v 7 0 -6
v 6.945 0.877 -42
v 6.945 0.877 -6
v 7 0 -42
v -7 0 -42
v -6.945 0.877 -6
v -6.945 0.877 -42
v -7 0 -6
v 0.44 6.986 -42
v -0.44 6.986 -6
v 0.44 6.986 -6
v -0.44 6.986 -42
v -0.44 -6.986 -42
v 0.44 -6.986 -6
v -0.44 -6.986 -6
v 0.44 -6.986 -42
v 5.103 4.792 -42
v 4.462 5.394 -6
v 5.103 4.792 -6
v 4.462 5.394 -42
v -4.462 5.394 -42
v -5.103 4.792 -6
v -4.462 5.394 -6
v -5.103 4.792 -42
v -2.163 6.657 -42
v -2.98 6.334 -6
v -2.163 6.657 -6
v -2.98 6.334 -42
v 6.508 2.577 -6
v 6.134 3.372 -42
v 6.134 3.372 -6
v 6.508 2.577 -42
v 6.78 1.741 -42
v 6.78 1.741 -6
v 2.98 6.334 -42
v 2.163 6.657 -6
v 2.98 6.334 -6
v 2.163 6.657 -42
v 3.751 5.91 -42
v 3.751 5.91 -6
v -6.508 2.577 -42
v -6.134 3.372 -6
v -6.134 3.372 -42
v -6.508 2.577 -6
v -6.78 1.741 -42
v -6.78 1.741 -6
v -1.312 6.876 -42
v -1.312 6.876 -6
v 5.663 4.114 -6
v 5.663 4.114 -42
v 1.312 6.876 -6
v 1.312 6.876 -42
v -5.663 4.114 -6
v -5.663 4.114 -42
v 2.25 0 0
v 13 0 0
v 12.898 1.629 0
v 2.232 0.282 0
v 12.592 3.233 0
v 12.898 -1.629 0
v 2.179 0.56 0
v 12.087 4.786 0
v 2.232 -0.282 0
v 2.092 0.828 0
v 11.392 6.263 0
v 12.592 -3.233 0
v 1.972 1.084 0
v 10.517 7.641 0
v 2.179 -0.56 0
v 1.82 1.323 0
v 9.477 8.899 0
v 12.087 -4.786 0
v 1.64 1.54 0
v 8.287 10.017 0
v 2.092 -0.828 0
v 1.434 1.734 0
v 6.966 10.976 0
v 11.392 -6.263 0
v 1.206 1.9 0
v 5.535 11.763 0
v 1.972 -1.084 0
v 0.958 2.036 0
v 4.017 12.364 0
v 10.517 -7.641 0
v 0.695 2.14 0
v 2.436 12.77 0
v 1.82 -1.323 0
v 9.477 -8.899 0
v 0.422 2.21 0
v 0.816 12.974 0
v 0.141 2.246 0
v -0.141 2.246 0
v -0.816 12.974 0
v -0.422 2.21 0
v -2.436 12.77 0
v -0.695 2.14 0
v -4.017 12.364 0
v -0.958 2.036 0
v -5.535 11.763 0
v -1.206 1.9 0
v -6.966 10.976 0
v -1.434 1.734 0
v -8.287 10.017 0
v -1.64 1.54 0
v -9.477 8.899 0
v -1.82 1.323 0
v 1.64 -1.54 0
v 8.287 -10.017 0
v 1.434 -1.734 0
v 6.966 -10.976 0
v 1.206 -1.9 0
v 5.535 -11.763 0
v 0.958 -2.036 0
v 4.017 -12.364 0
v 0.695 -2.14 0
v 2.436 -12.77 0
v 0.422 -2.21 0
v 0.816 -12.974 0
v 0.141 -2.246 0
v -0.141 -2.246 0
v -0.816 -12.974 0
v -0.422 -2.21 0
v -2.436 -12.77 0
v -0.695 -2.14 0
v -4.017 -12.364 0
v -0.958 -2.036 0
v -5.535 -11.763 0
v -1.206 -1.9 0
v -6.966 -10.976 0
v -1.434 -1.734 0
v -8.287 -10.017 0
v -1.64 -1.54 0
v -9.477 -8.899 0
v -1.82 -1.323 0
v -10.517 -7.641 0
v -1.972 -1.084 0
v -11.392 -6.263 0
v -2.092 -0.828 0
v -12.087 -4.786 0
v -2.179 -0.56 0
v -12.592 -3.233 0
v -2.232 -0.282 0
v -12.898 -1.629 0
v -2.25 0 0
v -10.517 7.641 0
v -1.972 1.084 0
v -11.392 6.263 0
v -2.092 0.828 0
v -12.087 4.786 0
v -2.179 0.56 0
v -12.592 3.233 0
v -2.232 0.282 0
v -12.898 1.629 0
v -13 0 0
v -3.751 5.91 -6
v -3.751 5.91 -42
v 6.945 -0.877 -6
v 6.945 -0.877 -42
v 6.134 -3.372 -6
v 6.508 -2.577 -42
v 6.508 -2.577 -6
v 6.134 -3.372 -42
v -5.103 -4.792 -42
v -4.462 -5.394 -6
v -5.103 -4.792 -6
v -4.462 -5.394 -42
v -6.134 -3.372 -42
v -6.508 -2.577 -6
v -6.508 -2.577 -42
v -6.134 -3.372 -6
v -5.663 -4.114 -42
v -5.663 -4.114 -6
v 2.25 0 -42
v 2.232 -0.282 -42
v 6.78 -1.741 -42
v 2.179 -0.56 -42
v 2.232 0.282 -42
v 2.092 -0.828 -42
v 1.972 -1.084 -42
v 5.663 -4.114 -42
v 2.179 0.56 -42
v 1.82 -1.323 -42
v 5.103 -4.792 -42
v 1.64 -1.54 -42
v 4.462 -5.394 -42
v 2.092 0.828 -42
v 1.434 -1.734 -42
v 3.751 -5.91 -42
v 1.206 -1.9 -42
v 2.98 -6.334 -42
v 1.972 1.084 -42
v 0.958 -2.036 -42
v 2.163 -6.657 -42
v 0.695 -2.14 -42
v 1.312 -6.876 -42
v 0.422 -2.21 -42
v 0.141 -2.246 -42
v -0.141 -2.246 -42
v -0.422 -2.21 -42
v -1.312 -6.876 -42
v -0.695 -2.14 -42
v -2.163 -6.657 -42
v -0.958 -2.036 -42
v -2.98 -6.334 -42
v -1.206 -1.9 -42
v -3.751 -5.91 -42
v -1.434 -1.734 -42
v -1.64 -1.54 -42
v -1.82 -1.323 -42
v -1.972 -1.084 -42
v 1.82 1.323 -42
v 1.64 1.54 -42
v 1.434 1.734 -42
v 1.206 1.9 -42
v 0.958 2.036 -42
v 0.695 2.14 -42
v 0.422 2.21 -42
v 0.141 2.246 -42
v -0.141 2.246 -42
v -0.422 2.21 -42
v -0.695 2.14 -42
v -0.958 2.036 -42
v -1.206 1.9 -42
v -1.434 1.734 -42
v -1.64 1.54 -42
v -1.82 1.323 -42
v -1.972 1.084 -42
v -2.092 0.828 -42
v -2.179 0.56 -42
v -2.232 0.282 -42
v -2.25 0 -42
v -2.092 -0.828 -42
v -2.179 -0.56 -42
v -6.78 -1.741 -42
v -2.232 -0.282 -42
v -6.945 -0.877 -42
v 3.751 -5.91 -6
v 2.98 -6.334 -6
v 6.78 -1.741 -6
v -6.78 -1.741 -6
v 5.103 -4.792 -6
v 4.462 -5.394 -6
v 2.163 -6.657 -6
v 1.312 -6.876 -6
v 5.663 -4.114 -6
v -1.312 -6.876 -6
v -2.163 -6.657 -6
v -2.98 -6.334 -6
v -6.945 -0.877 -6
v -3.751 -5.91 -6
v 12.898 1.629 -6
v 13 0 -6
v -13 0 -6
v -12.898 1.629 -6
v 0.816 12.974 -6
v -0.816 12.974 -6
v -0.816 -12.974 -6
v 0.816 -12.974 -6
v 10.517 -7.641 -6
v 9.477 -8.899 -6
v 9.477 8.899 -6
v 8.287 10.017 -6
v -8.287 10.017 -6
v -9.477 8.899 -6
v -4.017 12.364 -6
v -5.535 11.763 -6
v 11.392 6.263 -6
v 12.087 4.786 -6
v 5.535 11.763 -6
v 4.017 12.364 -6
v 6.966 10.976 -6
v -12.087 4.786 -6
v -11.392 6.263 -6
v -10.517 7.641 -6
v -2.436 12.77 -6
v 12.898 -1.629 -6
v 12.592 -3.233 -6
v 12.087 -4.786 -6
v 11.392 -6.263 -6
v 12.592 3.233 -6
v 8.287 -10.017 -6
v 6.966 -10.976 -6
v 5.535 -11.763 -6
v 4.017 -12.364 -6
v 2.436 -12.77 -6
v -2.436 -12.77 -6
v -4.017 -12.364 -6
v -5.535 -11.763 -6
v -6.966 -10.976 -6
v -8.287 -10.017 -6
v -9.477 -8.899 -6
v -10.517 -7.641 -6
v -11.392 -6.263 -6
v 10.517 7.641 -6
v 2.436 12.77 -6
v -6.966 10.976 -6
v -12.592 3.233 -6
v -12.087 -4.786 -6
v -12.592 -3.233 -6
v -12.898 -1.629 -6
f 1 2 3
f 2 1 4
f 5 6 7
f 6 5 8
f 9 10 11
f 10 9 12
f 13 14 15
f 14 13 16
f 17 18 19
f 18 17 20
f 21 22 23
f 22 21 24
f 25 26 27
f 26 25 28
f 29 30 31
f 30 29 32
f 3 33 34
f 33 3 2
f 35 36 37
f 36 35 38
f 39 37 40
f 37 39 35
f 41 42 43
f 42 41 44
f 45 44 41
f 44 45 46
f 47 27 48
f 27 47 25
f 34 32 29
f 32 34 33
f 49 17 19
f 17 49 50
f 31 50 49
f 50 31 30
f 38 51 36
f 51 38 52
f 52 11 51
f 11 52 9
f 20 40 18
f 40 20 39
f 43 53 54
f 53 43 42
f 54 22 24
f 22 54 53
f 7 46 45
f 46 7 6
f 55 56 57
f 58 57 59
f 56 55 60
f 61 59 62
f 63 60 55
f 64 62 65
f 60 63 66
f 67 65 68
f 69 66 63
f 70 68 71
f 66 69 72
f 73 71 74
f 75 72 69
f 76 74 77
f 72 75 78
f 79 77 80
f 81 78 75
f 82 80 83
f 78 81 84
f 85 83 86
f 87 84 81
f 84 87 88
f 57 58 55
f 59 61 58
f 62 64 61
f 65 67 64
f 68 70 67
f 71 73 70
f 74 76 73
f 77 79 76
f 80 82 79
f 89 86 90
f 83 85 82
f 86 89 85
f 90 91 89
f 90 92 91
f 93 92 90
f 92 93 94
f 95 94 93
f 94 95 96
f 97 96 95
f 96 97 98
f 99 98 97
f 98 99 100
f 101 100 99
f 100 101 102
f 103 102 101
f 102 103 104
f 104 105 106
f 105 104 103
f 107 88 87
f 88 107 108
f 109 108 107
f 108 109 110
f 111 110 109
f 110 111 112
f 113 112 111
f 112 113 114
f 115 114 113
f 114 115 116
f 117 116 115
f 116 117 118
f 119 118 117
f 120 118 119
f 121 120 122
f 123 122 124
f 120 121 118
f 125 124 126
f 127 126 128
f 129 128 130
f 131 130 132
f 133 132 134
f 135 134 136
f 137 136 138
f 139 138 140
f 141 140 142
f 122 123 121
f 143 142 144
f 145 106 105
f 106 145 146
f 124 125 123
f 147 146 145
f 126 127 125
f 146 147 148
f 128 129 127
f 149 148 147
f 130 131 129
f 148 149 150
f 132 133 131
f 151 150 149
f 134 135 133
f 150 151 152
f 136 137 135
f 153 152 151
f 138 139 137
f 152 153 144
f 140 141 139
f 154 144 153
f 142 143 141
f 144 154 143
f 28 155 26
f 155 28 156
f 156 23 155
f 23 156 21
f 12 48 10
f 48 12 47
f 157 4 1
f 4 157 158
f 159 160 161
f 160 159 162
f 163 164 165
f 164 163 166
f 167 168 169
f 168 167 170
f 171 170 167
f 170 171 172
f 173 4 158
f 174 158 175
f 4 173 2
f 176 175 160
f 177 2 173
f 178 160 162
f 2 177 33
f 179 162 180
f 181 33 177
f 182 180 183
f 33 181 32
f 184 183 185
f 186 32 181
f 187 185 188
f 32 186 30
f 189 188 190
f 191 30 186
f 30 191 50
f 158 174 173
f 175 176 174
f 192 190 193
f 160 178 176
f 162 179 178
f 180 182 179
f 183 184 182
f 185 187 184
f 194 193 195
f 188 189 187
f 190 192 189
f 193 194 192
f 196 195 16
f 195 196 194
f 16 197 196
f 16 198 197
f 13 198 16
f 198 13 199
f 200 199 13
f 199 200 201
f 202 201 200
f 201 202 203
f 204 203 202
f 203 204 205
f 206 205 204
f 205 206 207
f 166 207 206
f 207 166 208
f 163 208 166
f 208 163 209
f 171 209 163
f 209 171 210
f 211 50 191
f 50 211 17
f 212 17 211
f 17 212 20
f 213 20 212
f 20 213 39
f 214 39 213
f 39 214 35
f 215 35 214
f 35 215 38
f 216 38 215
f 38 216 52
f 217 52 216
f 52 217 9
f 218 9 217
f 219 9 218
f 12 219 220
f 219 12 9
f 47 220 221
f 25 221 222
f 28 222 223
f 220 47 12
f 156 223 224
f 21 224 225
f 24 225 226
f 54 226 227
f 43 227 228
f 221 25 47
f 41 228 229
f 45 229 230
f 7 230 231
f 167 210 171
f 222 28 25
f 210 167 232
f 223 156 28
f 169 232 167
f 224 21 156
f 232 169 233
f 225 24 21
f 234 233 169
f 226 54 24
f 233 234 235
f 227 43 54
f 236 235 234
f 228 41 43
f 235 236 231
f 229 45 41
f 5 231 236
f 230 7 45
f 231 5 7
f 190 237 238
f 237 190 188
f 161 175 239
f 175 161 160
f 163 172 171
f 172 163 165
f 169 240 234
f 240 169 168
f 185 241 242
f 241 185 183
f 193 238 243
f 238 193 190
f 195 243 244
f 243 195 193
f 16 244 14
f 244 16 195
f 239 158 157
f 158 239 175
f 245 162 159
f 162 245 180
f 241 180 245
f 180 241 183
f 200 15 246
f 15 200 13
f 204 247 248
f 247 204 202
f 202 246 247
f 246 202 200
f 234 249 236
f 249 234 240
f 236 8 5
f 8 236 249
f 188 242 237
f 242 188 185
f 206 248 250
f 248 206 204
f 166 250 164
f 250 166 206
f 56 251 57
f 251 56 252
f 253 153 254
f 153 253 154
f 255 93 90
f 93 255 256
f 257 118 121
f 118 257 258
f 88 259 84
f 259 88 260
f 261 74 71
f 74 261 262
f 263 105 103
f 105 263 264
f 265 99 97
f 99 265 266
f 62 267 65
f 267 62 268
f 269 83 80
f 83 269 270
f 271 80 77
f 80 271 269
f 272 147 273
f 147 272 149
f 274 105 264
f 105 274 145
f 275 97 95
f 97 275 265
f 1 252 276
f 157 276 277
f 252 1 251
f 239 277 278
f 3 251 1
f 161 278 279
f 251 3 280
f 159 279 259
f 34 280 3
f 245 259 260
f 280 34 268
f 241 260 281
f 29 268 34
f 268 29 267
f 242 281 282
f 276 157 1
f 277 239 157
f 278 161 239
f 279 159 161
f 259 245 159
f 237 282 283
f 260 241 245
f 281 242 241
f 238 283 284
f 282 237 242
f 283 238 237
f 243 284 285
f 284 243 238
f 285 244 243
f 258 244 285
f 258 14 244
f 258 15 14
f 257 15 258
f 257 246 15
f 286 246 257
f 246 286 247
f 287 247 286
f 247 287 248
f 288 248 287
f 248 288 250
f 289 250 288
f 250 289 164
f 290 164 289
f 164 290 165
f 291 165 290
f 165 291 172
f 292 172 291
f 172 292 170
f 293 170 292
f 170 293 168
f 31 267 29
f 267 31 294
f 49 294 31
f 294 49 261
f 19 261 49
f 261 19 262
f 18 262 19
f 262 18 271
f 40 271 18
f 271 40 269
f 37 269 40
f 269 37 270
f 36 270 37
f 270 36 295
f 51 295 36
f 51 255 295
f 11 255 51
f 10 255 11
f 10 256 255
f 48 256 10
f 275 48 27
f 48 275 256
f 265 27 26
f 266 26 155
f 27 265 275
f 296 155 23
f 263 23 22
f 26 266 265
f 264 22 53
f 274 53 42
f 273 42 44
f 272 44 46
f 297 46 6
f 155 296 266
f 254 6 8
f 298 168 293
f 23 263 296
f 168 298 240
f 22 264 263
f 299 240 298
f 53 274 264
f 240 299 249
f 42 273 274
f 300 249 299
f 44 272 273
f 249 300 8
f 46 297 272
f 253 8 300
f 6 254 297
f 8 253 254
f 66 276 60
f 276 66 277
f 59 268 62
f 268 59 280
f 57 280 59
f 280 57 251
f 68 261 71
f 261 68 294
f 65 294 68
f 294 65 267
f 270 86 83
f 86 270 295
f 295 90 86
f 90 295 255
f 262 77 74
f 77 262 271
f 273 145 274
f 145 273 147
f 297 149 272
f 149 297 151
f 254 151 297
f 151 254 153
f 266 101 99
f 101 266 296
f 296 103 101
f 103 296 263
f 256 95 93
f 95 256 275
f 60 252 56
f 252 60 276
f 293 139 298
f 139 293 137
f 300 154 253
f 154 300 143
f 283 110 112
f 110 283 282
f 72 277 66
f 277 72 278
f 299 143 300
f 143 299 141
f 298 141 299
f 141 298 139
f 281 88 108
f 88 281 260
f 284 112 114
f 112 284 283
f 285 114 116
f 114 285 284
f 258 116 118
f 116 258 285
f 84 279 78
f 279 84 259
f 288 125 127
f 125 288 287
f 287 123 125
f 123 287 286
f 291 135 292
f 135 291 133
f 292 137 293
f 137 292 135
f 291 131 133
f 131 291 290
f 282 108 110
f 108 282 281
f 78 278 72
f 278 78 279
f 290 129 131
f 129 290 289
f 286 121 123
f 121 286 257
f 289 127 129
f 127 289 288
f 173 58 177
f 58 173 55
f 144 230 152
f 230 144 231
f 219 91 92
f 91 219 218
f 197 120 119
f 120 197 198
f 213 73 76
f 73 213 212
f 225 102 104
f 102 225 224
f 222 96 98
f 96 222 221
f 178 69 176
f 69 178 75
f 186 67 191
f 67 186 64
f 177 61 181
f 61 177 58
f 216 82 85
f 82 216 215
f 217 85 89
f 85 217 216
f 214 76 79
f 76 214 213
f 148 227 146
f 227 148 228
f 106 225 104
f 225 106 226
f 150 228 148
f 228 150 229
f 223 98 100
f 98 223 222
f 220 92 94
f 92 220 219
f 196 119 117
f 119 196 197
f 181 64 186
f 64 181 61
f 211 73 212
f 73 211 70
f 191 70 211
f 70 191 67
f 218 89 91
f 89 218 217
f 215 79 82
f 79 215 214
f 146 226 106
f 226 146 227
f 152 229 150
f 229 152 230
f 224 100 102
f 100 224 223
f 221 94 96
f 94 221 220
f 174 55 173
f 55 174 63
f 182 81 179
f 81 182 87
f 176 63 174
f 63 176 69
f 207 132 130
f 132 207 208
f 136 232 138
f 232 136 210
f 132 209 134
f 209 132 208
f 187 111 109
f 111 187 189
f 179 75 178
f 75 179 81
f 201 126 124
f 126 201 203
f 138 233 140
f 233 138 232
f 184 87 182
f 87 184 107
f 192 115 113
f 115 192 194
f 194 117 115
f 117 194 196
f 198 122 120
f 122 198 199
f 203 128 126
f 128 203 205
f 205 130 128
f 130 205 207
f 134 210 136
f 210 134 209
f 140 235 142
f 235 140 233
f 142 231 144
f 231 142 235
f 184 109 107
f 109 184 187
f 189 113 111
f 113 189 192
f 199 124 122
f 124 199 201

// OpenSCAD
$fn = 50;


difference() {
	union() {
		translate(v = [0, 0, -42.0000000000]) {
			cylinder(h = 42, r = 7.0000000000);
		}
		translate(v = [0, 0, -6.0000000000]) {
			cylinder(h = 6, r = 13.0000000000);
		}
	}
	union() {
		#translate(v = [0, 0, -42]) {
			cylinder(h = 42, r = 2.2500000000);
		}
	}
}
